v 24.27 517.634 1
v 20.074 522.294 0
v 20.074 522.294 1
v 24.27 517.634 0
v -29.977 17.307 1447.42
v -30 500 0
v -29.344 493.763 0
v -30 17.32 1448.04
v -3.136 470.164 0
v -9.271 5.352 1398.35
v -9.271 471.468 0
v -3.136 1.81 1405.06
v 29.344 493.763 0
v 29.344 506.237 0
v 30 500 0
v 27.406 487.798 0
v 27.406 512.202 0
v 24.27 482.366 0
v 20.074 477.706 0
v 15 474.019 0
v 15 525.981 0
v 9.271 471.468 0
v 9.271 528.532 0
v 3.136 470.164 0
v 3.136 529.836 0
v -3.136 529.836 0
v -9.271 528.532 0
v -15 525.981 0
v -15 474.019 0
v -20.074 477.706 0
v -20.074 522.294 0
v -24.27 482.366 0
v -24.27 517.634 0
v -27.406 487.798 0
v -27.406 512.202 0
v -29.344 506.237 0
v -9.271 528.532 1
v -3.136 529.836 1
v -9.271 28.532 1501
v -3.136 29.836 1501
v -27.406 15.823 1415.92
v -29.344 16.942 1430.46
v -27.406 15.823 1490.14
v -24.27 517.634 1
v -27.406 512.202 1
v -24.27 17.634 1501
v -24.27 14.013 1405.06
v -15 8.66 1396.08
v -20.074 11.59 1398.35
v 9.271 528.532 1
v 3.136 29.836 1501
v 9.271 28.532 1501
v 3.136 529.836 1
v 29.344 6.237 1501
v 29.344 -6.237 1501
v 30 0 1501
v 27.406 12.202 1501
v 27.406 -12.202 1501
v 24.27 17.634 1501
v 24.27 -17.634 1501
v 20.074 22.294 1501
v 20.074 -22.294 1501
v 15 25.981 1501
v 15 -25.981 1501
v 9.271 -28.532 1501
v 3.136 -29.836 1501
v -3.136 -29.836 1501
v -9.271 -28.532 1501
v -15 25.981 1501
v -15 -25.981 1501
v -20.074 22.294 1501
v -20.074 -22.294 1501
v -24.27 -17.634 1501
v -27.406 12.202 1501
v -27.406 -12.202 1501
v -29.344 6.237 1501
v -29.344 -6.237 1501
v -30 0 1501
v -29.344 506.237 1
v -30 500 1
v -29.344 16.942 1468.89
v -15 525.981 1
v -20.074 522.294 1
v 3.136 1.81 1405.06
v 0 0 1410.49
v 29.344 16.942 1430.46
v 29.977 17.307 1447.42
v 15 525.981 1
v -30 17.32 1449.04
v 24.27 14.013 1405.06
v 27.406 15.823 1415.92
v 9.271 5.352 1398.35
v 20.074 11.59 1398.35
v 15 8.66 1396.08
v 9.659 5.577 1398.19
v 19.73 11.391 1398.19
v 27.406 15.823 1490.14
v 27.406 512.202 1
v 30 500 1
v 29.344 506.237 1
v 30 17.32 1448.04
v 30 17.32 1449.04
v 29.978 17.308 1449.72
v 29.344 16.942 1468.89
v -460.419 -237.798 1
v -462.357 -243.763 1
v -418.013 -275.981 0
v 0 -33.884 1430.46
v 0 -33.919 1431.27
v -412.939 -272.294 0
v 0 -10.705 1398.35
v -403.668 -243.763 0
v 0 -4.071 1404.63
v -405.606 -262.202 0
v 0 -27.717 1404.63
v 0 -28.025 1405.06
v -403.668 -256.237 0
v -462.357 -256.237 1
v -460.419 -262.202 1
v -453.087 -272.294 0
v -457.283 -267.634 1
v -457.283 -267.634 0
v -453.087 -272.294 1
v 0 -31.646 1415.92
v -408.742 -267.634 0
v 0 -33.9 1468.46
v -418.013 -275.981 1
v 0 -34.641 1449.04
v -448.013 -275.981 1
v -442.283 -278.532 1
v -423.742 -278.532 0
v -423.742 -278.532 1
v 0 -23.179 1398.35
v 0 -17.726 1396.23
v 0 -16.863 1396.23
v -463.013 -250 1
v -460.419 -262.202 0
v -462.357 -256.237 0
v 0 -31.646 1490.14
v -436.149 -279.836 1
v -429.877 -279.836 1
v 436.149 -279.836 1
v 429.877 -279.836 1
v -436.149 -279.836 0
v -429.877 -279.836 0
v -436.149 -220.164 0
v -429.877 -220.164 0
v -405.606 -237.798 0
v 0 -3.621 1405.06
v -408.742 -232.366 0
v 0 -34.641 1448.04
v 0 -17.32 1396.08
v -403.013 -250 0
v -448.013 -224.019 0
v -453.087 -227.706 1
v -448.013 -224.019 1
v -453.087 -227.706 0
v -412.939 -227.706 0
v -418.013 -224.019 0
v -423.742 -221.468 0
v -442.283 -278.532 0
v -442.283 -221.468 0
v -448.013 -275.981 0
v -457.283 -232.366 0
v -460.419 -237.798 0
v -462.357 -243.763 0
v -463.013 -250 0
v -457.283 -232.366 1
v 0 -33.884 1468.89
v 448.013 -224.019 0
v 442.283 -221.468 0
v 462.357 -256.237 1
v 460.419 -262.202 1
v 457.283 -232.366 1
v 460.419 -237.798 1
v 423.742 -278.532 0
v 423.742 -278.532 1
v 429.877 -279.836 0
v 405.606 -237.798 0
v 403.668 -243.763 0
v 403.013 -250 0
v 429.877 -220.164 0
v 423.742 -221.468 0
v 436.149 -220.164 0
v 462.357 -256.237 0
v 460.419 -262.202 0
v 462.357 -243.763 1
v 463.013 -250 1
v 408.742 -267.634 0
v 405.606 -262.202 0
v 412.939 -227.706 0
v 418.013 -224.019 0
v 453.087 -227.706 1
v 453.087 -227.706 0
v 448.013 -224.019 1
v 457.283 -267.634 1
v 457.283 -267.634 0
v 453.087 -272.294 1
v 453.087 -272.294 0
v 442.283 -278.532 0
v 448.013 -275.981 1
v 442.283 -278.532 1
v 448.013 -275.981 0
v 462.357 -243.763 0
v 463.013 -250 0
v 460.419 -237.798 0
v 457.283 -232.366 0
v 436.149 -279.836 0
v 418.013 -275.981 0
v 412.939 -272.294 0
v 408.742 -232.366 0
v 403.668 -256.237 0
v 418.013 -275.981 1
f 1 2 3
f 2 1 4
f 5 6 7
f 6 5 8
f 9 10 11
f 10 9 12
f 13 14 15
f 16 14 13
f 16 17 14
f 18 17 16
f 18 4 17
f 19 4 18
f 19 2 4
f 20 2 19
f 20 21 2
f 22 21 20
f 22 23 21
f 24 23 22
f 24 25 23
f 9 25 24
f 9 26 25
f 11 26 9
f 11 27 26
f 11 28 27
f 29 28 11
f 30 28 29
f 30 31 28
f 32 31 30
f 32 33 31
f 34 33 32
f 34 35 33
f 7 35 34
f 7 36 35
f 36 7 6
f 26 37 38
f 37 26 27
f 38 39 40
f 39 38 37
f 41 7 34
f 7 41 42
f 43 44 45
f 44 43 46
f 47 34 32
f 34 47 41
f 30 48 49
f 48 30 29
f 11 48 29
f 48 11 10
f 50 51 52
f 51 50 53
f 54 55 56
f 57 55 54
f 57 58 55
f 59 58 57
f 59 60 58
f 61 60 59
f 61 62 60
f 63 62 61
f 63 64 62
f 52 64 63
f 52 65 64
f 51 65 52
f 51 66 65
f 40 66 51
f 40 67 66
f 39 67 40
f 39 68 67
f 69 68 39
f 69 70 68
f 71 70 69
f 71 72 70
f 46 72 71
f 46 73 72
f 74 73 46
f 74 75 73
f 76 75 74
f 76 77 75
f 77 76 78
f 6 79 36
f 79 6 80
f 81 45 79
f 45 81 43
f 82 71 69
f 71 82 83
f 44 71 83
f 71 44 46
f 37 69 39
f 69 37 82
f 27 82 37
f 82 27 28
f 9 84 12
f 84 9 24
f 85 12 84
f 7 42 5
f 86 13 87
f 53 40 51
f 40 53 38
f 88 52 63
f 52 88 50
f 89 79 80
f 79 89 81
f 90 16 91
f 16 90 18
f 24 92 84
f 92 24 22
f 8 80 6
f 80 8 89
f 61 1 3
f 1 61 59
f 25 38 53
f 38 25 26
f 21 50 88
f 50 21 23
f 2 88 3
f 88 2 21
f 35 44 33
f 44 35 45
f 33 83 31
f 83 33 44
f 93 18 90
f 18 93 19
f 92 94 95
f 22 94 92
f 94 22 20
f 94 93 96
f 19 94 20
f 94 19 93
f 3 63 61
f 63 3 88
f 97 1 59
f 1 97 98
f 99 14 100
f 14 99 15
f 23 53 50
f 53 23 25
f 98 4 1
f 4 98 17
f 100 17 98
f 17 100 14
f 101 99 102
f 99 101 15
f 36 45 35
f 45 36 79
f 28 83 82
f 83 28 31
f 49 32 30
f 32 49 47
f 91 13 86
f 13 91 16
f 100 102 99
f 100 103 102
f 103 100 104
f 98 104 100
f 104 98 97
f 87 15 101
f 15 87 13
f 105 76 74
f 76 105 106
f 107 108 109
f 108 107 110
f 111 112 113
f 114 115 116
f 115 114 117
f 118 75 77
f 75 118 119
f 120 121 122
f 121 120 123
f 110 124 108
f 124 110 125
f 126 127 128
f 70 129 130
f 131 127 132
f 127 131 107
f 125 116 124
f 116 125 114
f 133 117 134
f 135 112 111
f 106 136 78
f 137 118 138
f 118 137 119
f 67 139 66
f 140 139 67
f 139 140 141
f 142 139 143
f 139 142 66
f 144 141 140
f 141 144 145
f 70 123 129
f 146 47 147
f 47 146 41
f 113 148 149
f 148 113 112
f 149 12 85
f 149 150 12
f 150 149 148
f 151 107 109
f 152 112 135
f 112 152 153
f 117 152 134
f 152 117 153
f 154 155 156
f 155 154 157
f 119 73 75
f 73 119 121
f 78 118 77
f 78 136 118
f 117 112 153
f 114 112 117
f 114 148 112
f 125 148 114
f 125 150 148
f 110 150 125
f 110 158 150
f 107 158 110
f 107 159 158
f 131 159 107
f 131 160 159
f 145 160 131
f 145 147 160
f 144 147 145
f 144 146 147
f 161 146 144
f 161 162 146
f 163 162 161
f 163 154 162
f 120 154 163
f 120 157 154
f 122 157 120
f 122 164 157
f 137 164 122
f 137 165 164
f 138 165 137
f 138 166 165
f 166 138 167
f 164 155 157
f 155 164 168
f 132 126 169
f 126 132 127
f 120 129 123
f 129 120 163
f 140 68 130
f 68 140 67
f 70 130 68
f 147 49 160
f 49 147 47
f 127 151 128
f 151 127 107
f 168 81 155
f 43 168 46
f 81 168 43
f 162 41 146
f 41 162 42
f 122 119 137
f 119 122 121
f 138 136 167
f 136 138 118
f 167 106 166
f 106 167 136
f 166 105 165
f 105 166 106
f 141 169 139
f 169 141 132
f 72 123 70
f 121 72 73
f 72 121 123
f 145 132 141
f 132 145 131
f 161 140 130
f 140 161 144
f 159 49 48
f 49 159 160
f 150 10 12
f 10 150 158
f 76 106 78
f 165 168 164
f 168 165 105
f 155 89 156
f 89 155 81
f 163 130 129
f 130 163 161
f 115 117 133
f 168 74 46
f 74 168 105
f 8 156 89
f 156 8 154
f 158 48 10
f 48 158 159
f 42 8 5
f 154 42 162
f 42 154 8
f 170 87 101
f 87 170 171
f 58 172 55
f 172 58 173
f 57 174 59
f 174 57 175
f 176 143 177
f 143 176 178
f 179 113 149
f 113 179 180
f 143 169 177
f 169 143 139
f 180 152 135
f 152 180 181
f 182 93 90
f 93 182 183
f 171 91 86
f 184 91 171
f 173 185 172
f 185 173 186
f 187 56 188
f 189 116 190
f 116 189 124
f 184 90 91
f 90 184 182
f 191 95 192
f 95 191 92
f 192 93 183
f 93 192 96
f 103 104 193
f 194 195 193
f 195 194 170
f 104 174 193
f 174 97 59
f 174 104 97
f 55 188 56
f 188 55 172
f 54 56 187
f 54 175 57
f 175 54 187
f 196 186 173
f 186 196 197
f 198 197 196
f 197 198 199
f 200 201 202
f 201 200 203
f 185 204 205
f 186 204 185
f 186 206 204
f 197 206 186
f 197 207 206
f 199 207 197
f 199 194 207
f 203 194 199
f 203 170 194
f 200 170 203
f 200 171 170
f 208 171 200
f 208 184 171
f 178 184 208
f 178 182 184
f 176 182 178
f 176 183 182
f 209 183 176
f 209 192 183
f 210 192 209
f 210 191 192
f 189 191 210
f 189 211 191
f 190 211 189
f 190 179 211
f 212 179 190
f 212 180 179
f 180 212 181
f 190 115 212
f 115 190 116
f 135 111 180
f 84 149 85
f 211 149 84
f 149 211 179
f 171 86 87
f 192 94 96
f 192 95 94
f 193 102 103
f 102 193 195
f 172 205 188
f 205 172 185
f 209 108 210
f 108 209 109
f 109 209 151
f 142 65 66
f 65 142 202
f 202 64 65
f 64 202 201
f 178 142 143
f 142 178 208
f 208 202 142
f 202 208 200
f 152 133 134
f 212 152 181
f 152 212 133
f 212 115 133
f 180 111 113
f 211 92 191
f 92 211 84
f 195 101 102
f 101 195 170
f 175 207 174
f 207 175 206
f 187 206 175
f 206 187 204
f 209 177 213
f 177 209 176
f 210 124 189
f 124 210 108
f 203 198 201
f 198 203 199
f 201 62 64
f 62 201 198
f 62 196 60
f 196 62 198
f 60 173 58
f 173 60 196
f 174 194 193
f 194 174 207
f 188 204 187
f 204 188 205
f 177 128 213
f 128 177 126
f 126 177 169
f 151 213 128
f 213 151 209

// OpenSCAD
s_vyska = 1500;
s_r = 500;
s_noha_r = 60;

module stativ(){
    for(i=[0:3-1]){
        rotate([0, 0, 360/3*i]) hull(){
            translate([0,0,s_vyska]) cylinder(d=s_noha_r, h=1);
            translate([0,s_r,0]) cylinder(d=s_noha_r, h=1);
        }
    }
}


stativ();
